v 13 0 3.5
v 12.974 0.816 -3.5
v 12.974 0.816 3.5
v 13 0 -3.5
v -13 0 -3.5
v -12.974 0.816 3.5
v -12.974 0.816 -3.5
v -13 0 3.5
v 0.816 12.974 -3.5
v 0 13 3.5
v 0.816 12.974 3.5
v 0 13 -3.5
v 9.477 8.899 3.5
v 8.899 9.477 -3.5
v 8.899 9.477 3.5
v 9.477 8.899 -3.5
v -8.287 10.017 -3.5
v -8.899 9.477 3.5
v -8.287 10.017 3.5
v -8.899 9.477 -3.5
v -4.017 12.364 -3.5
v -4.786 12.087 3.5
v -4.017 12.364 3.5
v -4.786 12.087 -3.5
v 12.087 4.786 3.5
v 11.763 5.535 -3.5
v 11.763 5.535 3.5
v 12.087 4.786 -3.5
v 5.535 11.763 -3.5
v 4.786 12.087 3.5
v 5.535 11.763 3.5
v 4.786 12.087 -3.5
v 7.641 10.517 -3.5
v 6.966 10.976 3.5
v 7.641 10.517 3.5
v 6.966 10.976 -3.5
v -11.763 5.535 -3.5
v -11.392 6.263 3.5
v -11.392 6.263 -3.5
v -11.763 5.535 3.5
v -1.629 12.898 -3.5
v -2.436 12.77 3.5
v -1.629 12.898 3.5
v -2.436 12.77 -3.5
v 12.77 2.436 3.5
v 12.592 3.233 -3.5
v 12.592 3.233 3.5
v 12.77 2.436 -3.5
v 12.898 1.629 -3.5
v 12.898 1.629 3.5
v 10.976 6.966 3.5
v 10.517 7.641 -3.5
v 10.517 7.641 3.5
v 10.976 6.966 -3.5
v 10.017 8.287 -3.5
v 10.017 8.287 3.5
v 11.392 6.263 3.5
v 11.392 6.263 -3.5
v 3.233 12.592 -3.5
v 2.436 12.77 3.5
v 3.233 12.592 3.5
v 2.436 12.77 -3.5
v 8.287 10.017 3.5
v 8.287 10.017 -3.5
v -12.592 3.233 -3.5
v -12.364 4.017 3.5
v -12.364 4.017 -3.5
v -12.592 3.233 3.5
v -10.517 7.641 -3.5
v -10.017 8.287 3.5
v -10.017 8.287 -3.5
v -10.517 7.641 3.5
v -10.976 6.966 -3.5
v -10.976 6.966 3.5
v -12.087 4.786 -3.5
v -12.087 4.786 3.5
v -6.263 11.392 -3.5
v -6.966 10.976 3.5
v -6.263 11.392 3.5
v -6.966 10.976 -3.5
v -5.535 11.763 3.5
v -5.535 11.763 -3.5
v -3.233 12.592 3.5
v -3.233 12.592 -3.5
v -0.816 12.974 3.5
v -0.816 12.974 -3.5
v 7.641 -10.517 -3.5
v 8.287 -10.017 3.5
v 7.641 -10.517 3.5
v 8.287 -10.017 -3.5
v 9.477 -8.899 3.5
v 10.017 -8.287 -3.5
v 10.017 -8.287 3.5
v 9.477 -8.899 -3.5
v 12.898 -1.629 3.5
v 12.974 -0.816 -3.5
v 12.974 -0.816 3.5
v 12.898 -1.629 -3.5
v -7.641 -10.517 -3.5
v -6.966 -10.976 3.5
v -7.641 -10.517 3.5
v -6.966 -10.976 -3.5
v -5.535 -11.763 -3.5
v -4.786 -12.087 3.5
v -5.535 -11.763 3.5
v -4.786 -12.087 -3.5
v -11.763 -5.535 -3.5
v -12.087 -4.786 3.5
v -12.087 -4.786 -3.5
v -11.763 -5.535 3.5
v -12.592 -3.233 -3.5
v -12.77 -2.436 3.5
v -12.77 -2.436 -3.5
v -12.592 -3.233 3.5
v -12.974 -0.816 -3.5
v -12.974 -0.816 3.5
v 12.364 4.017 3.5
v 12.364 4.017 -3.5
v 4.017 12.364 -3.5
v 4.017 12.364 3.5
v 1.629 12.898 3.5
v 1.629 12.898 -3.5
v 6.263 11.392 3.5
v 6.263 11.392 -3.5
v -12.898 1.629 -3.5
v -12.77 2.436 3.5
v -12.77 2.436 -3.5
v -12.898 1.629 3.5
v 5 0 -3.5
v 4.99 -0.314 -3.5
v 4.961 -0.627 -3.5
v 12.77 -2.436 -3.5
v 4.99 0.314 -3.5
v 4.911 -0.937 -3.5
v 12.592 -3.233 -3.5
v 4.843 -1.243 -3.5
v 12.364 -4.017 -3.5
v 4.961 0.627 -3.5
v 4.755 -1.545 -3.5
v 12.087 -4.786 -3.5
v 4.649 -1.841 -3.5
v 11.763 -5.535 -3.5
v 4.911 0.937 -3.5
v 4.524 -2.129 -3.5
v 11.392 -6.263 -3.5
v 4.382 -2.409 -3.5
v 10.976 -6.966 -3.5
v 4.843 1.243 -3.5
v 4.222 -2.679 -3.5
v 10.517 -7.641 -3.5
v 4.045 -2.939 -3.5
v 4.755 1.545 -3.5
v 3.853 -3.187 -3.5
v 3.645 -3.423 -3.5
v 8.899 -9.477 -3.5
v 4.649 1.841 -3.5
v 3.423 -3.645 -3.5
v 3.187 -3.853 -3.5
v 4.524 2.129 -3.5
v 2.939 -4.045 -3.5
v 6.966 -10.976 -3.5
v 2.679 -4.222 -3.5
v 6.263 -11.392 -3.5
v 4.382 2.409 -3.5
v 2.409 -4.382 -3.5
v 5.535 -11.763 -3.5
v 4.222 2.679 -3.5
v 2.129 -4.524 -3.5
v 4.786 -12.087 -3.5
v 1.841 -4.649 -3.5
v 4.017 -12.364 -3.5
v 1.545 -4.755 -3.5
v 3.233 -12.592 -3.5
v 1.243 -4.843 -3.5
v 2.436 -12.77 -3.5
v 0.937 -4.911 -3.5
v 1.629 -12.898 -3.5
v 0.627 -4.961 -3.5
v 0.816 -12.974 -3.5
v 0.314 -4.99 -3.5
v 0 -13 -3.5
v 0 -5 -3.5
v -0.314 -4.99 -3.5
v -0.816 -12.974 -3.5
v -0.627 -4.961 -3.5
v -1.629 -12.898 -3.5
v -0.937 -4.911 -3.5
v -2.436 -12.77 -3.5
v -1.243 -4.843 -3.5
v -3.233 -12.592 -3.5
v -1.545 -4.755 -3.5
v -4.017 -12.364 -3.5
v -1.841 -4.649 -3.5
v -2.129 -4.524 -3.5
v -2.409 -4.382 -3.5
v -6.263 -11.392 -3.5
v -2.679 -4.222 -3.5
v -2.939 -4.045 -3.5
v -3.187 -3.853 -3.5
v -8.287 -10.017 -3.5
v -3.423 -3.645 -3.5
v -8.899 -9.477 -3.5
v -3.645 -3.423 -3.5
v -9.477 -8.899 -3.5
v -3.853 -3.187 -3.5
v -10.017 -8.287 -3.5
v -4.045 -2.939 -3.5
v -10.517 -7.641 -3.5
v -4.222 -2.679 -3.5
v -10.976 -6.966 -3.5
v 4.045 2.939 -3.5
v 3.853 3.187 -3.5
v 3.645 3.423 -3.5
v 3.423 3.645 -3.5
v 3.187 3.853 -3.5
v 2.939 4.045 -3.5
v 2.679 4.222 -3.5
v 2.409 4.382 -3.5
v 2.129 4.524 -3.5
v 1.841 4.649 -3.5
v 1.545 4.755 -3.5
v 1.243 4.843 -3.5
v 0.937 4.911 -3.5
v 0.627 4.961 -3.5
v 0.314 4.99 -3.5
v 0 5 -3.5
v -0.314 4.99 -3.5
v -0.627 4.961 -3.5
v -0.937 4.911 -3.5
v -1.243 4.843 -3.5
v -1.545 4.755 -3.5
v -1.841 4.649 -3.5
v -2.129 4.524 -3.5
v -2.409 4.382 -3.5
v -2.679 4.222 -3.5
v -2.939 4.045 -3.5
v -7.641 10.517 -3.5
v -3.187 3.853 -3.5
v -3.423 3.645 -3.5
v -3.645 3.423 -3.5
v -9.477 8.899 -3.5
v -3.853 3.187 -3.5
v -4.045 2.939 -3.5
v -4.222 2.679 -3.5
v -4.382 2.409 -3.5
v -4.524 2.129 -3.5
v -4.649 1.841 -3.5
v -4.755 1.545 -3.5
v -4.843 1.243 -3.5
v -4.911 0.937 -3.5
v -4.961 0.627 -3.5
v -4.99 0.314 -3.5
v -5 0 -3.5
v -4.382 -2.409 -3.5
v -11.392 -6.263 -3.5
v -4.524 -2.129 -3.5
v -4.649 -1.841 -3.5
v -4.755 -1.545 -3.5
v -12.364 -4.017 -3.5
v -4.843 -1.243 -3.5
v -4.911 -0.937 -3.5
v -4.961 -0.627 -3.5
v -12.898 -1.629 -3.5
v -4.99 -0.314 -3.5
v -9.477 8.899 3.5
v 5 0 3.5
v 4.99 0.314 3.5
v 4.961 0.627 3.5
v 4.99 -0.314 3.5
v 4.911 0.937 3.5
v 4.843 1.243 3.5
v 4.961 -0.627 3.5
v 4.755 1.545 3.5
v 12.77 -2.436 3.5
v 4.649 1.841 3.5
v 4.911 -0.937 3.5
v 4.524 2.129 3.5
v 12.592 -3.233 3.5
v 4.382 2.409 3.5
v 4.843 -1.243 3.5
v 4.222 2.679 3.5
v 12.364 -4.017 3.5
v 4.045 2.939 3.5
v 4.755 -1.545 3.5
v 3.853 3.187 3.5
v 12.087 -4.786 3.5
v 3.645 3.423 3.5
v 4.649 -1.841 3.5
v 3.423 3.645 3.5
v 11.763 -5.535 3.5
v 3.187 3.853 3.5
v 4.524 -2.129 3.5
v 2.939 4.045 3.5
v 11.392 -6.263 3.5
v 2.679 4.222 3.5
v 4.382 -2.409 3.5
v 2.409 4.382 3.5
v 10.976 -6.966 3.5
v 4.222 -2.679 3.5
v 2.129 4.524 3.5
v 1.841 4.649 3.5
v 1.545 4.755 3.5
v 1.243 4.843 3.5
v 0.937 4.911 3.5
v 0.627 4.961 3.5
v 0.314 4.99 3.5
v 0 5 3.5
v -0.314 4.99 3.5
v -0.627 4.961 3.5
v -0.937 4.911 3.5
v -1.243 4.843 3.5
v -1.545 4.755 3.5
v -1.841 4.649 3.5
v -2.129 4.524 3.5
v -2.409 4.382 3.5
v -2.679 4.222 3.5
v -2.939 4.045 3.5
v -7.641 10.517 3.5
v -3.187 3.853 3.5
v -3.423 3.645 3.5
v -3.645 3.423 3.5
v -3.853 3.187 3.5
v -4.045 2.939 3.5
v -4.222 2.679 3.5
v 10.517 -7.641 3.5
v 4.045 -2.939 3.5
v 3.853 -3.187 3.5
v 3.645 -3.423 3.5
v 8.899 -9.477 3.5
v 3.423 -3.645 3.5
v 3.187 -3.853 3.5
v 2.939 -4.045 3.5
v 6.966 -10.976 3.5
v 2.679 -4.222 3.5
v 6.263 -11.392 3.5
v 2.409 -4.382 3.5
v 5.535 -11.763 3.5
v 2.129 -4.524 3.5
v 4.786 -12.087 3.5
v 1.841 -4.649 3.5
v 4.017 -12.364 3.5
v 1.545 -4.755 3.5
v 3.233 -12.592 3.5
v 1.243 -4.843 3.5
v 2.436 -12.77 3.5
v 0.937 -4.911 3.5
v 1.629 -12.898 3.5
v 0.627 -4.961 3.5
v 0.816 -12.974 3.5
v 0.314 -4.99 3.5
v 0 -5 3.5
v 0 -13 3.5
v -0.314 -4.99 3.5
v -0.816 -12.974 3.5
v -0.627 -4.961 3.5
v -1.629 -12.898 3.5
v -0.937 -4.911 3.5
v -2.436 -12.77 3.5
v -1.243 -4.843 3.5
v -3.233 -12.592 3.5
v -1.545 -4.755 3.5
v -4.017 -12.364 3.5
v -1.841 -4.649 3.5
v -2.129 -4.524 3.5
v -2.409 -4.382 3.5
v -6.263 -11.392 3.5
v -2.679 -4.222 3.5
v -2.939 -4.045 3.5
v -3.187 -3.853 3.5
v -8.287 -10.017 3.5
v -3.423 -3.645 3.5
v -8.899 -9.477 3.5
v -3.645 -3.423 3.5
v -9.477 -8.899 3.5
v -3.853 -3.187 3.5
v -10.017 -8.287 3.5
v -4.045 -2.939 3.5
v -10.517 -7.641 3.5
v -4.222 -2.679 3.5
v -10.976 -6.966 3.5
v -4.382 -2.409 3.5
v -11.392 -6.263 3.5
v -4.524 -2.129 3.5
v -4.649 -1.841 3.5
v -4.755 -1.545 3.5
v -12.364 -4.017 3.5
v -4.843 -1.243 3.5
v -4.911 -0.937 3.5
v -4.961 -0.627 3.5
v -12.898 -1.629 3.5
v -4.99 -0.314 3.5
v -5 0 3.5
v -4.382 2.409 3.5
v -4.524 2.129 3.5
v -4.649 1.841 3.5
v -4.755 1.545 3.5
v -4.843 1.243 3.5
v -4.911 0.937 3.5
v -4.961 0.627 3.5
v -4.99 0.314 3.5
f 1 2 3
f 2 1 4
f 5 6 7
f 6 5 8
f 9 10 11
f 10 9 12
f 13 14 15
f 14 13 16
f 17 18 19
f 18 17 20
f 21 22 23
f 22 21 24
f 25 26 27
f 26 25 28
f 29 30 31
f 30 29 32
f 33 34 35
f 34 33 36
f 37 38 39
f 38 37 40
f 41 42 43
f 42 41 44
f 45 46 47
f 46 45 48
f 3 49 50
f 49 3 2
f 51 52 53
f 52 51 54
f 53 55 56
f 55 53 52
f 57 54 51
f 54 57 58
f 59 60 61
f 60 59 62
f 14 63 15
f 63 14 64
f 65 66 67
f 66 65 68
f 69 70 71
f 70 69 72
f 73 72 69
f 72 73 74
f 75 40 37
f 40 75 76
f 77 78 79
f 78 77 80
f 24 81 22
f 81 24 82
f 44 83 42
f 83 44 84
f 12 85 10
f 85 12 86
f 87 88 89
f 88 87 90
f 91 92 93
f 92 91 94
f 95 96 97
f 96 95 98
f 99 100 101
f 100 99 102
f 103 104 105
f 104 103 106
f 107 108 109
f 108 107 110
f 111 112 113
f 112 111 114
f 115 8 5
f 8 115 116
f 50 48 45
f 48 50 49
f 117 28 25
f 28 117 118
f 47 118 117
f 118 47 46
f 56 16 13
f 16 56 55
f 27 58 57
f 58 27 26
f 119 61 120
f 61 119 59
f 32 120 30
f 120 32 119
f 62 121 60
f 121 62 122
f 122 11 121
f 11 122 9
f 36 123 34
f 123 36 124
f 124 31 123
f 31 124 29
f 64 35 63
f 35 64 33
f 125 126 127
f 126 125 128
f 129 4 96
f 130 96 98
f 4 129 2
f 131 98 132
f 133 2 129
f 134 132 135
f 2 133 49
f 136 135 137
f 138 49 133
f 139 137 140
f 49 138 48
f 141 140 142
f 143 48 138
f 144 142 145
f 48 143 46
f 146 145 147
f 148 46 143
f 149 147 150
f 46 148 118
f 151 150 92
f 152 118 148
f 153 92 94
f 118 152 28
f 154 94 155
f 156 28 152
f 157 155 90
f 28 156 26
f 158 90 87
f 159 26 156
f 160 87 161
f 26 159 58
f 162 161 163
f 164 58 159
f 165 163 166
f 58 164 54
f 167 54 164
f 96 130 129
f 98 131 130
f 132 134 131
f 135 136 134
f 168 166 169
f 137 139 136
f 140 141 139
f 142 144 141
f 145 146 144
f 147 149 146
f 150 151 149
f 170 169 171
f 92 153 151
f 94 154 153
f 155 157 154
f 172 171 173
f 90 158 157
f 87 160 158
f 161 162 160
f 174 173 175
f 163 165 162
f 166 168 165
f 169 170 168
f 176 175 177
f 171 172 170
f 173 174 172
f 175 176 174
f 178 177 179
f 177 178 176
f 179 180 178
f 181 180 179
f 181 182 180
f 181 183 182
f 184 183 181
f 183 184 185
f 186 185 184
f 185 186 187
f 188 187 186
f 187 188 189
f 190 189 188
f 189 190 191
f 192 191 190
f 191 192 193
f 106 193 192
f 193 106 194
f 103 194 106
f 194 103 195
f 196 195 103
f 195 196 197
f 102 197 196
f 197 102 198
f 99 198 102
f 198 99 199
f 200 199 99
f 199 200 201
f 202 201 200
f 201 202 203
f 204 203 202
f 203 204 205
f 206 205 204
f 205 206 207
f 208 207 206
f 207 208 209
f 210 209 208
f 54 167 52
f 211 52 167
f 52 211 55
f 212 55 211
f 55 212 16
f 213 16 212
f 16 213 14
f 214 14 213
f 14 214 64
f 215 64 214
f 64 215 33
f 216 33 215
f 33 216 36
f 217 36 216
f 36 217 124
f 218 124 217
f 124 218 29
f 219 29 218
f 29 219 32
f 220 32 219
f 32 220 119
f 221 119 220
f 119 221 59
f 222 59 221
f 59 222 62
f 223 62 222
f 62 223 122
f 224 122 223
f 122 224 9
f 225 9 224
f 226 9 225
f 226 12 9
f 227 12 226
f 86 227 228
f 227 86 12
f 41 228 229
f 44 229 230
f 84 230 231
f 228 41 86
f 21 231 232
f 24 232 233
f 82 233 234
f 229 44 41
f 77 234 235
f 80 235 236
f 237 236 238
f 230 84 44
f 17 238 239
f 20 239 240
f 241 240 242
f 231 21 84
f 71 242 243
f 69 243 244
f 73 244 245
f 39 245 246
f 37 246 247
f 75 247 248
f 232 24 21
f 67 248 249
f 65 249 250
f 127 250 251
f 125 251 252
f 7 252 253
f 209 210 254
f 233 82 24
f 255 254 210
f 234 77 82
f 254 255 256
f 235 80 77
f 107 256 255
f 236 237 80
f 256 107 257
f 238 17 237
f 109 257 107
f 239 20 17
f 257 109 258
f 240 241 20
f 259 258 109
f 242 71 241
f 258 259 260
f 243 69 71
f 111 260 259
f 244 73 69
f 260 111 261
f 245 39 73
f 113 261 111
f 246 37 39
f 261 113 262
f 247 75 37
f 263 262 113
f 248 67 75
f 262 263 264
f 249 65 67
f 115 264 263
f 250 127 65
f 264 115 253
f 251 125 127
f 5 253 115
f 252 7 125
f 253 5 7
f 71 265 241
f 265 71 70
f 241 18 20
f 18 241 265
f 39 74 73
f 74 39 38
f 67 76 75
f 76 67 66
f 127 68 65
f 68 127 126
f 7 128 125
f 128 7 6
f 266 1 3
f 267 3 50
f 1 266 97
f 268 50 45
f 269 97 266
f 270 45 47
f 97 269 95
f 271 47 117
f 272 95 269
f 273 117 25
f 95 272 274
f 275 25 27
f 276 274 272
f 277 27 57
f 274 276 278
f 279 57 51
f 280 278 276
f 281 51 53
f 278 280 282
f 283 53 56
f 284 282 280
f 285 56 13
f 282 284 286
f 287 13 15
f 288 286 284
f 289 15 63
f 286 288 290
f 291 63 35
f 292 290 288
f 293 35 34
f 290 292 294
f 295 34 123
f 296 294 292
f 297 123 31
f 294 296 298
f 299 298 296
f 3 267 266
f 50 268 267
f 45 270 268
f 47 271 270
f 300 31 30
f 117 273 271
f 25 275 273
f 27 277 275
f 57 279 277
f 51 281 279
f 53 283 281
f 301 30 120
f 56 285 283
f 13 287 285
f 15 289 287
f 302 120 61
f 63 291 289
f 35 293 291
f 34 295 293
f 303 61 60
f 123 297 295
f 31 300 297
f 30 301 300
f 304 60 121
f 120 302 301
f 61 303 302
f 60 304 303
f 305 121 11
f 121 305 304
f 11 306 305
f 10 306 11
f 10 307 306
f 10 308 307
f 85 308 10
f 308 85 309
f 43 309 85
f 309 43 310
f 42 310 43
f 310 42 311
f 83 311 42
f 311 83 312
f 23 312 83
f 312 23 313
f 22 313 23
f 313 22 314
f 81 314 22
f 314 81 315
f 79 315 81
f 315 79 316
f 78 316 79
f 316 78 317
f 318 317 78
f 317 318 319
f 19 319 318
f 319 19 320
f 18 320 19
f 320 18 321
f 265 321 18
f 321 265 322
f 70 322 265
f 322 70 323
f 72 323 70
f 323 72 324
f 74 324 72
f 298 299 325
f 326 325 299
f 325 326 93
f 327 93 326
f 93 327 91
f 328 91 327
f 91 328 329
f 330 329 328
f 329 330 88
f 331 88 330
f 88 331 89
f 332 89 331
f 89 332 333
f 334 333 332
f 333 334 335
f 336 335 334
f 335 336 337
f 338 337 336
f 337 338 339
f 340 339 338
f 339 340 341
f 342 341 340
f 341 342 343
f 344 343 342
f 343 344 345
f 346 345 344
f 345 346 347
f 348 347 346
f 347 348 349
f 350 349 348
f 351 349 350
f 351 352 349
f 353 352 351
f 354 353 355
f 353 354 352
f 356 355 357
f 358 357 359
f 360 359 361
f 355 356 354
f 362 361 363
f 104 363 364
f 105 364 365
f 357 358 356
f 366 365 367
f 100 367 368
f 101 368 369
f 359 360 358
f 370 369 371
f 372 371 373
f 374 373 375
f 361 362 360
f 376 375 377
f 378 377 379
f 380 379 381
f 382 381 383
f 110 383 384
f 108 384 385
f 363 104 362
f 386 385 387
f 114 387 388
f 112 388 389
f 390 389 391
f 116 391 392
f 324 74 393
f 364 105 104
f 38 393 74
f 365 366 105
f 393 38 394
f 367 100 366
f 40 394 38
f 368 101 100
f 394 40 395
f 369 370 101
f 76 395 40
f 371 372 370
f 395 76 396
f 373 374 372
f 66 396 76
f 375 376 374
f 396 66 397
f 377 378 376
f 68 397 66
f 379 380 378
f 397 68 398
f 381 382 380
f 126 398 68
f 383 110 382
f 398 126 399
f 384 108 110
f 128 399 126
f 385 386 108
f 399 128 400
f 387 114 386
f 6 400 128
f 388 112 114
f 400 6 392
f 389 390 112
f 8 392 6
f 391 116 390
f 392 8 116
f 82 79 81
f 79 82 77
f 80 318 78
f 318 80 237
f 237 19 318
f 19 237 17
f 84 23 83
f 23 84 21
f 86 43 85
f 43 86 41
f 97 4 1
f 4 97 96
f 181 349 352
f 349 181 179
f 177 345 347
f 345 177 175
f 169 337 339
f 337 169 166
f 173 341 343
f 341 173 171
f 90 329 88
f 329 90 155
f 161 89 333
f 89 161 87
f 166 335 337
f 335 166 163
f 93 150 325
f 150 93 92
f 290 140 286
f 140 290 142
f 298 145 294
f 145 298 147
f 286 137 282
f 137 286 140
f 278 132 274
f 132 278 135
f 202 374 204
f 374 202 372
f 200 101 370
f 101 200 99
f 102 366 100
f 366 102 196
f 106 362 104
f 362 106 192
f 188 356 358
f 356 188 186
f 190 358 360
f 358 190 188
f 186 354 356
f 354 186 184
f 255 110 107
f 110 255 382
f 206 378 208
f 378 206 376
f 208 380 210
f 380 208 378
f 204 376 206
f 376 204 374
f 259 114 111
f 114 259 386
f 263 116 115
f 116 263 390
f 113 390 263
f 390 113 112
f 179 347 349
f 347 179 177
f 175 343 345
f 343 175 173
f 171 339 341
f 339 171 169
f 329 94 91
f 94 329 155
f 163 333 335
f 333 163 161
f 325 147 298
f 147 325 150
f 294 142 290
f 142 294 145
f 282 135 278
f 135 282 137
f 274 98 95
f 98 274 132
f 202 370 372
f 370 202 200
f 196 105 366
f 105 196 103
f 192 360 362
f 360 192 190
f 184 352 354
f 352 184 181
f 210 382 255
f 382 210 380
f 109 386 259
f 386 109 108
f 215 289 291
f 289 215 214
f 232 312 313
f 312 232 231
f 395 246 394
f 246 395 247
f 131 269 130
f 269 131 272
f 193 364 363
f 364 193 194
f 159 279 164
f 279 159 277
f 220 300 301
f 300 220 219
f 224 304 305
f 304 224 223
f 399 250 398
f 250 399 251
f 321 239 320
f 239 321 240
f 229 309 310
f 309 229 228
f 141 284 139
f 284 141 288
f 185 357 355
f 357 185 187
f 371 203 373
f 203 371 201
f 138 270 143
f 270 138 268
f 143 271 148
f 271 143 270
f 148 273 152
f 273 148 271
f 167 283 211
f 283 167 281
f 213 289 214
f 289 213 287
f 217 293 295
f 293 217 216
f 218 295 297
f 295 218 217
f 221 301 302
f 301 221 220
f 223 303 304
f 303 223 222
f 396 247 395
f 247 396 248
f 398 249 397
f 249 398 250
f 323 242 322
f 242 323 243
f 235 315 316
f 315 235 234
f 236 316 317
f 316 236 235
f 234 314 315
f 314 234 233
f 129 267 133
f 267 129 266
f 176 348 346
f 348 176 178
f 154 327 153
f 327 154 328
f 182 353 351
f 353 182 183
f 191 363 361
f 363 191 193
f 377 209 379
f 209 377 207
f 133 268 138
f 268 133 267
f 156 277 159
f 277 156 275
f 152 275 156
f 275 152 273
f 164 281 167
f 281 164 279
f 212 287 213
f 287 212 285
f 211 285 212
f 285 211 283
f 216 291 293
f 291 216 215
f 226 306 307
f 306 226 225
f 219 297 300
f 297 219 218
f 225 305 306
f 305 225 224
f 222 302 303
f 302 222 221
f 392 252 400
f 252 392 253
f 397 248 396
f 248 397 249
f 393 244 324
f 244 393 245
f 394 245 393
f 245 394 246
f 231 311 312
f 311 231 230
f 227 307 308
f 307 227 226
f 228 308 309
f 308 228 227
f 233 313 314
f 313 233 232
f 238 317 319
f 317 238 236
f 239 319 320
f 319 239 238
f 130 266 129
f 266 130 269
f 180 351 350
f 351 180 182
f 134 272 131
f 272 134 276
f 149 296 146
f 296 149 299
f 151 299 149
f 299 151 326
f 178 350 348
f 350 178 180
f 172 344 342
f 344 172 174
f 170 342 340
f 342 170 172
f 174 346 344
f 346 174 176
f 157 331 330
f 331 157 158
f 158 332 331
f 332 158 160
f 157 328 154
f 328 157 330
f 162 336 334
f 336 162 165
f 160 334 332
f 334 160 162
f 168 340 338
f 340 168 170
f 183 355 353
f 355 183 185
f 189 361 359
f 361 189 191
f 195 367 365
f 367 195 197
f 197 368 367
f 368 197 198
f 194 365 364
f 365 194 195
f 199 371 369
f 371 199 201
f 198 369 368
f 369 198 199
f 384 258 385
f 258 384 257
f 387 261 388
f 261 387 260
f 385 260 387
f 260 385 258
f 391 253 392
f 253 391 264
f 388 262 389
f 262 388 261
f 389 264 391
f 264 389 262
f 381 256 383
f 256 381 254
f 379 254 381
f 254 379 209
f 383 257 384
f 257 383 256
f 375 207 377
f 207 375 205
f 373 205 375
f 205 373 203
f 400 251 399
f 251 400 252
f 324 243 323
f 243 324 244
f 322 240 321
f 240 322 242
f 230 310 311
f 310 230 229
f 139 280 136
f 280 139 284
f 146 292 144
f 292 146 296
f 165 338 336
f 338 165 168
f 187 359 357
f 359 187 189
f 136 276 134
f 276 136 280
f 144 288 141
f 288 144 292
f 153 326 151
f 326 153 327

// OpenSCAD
// Cylindrical spacer with 10 mm hole along Z
// Outer diameter 26 mm, inner hole 10 mm, height 7 mm

difference() {
    // Main spacer body
    cylinder(h = 7, d = 26, center = true, $fn = 100);
    
    // Central 10 mm hole along Z axis
    cylinder(h = 10, d = 10, center = true, $fn = 100);
}
